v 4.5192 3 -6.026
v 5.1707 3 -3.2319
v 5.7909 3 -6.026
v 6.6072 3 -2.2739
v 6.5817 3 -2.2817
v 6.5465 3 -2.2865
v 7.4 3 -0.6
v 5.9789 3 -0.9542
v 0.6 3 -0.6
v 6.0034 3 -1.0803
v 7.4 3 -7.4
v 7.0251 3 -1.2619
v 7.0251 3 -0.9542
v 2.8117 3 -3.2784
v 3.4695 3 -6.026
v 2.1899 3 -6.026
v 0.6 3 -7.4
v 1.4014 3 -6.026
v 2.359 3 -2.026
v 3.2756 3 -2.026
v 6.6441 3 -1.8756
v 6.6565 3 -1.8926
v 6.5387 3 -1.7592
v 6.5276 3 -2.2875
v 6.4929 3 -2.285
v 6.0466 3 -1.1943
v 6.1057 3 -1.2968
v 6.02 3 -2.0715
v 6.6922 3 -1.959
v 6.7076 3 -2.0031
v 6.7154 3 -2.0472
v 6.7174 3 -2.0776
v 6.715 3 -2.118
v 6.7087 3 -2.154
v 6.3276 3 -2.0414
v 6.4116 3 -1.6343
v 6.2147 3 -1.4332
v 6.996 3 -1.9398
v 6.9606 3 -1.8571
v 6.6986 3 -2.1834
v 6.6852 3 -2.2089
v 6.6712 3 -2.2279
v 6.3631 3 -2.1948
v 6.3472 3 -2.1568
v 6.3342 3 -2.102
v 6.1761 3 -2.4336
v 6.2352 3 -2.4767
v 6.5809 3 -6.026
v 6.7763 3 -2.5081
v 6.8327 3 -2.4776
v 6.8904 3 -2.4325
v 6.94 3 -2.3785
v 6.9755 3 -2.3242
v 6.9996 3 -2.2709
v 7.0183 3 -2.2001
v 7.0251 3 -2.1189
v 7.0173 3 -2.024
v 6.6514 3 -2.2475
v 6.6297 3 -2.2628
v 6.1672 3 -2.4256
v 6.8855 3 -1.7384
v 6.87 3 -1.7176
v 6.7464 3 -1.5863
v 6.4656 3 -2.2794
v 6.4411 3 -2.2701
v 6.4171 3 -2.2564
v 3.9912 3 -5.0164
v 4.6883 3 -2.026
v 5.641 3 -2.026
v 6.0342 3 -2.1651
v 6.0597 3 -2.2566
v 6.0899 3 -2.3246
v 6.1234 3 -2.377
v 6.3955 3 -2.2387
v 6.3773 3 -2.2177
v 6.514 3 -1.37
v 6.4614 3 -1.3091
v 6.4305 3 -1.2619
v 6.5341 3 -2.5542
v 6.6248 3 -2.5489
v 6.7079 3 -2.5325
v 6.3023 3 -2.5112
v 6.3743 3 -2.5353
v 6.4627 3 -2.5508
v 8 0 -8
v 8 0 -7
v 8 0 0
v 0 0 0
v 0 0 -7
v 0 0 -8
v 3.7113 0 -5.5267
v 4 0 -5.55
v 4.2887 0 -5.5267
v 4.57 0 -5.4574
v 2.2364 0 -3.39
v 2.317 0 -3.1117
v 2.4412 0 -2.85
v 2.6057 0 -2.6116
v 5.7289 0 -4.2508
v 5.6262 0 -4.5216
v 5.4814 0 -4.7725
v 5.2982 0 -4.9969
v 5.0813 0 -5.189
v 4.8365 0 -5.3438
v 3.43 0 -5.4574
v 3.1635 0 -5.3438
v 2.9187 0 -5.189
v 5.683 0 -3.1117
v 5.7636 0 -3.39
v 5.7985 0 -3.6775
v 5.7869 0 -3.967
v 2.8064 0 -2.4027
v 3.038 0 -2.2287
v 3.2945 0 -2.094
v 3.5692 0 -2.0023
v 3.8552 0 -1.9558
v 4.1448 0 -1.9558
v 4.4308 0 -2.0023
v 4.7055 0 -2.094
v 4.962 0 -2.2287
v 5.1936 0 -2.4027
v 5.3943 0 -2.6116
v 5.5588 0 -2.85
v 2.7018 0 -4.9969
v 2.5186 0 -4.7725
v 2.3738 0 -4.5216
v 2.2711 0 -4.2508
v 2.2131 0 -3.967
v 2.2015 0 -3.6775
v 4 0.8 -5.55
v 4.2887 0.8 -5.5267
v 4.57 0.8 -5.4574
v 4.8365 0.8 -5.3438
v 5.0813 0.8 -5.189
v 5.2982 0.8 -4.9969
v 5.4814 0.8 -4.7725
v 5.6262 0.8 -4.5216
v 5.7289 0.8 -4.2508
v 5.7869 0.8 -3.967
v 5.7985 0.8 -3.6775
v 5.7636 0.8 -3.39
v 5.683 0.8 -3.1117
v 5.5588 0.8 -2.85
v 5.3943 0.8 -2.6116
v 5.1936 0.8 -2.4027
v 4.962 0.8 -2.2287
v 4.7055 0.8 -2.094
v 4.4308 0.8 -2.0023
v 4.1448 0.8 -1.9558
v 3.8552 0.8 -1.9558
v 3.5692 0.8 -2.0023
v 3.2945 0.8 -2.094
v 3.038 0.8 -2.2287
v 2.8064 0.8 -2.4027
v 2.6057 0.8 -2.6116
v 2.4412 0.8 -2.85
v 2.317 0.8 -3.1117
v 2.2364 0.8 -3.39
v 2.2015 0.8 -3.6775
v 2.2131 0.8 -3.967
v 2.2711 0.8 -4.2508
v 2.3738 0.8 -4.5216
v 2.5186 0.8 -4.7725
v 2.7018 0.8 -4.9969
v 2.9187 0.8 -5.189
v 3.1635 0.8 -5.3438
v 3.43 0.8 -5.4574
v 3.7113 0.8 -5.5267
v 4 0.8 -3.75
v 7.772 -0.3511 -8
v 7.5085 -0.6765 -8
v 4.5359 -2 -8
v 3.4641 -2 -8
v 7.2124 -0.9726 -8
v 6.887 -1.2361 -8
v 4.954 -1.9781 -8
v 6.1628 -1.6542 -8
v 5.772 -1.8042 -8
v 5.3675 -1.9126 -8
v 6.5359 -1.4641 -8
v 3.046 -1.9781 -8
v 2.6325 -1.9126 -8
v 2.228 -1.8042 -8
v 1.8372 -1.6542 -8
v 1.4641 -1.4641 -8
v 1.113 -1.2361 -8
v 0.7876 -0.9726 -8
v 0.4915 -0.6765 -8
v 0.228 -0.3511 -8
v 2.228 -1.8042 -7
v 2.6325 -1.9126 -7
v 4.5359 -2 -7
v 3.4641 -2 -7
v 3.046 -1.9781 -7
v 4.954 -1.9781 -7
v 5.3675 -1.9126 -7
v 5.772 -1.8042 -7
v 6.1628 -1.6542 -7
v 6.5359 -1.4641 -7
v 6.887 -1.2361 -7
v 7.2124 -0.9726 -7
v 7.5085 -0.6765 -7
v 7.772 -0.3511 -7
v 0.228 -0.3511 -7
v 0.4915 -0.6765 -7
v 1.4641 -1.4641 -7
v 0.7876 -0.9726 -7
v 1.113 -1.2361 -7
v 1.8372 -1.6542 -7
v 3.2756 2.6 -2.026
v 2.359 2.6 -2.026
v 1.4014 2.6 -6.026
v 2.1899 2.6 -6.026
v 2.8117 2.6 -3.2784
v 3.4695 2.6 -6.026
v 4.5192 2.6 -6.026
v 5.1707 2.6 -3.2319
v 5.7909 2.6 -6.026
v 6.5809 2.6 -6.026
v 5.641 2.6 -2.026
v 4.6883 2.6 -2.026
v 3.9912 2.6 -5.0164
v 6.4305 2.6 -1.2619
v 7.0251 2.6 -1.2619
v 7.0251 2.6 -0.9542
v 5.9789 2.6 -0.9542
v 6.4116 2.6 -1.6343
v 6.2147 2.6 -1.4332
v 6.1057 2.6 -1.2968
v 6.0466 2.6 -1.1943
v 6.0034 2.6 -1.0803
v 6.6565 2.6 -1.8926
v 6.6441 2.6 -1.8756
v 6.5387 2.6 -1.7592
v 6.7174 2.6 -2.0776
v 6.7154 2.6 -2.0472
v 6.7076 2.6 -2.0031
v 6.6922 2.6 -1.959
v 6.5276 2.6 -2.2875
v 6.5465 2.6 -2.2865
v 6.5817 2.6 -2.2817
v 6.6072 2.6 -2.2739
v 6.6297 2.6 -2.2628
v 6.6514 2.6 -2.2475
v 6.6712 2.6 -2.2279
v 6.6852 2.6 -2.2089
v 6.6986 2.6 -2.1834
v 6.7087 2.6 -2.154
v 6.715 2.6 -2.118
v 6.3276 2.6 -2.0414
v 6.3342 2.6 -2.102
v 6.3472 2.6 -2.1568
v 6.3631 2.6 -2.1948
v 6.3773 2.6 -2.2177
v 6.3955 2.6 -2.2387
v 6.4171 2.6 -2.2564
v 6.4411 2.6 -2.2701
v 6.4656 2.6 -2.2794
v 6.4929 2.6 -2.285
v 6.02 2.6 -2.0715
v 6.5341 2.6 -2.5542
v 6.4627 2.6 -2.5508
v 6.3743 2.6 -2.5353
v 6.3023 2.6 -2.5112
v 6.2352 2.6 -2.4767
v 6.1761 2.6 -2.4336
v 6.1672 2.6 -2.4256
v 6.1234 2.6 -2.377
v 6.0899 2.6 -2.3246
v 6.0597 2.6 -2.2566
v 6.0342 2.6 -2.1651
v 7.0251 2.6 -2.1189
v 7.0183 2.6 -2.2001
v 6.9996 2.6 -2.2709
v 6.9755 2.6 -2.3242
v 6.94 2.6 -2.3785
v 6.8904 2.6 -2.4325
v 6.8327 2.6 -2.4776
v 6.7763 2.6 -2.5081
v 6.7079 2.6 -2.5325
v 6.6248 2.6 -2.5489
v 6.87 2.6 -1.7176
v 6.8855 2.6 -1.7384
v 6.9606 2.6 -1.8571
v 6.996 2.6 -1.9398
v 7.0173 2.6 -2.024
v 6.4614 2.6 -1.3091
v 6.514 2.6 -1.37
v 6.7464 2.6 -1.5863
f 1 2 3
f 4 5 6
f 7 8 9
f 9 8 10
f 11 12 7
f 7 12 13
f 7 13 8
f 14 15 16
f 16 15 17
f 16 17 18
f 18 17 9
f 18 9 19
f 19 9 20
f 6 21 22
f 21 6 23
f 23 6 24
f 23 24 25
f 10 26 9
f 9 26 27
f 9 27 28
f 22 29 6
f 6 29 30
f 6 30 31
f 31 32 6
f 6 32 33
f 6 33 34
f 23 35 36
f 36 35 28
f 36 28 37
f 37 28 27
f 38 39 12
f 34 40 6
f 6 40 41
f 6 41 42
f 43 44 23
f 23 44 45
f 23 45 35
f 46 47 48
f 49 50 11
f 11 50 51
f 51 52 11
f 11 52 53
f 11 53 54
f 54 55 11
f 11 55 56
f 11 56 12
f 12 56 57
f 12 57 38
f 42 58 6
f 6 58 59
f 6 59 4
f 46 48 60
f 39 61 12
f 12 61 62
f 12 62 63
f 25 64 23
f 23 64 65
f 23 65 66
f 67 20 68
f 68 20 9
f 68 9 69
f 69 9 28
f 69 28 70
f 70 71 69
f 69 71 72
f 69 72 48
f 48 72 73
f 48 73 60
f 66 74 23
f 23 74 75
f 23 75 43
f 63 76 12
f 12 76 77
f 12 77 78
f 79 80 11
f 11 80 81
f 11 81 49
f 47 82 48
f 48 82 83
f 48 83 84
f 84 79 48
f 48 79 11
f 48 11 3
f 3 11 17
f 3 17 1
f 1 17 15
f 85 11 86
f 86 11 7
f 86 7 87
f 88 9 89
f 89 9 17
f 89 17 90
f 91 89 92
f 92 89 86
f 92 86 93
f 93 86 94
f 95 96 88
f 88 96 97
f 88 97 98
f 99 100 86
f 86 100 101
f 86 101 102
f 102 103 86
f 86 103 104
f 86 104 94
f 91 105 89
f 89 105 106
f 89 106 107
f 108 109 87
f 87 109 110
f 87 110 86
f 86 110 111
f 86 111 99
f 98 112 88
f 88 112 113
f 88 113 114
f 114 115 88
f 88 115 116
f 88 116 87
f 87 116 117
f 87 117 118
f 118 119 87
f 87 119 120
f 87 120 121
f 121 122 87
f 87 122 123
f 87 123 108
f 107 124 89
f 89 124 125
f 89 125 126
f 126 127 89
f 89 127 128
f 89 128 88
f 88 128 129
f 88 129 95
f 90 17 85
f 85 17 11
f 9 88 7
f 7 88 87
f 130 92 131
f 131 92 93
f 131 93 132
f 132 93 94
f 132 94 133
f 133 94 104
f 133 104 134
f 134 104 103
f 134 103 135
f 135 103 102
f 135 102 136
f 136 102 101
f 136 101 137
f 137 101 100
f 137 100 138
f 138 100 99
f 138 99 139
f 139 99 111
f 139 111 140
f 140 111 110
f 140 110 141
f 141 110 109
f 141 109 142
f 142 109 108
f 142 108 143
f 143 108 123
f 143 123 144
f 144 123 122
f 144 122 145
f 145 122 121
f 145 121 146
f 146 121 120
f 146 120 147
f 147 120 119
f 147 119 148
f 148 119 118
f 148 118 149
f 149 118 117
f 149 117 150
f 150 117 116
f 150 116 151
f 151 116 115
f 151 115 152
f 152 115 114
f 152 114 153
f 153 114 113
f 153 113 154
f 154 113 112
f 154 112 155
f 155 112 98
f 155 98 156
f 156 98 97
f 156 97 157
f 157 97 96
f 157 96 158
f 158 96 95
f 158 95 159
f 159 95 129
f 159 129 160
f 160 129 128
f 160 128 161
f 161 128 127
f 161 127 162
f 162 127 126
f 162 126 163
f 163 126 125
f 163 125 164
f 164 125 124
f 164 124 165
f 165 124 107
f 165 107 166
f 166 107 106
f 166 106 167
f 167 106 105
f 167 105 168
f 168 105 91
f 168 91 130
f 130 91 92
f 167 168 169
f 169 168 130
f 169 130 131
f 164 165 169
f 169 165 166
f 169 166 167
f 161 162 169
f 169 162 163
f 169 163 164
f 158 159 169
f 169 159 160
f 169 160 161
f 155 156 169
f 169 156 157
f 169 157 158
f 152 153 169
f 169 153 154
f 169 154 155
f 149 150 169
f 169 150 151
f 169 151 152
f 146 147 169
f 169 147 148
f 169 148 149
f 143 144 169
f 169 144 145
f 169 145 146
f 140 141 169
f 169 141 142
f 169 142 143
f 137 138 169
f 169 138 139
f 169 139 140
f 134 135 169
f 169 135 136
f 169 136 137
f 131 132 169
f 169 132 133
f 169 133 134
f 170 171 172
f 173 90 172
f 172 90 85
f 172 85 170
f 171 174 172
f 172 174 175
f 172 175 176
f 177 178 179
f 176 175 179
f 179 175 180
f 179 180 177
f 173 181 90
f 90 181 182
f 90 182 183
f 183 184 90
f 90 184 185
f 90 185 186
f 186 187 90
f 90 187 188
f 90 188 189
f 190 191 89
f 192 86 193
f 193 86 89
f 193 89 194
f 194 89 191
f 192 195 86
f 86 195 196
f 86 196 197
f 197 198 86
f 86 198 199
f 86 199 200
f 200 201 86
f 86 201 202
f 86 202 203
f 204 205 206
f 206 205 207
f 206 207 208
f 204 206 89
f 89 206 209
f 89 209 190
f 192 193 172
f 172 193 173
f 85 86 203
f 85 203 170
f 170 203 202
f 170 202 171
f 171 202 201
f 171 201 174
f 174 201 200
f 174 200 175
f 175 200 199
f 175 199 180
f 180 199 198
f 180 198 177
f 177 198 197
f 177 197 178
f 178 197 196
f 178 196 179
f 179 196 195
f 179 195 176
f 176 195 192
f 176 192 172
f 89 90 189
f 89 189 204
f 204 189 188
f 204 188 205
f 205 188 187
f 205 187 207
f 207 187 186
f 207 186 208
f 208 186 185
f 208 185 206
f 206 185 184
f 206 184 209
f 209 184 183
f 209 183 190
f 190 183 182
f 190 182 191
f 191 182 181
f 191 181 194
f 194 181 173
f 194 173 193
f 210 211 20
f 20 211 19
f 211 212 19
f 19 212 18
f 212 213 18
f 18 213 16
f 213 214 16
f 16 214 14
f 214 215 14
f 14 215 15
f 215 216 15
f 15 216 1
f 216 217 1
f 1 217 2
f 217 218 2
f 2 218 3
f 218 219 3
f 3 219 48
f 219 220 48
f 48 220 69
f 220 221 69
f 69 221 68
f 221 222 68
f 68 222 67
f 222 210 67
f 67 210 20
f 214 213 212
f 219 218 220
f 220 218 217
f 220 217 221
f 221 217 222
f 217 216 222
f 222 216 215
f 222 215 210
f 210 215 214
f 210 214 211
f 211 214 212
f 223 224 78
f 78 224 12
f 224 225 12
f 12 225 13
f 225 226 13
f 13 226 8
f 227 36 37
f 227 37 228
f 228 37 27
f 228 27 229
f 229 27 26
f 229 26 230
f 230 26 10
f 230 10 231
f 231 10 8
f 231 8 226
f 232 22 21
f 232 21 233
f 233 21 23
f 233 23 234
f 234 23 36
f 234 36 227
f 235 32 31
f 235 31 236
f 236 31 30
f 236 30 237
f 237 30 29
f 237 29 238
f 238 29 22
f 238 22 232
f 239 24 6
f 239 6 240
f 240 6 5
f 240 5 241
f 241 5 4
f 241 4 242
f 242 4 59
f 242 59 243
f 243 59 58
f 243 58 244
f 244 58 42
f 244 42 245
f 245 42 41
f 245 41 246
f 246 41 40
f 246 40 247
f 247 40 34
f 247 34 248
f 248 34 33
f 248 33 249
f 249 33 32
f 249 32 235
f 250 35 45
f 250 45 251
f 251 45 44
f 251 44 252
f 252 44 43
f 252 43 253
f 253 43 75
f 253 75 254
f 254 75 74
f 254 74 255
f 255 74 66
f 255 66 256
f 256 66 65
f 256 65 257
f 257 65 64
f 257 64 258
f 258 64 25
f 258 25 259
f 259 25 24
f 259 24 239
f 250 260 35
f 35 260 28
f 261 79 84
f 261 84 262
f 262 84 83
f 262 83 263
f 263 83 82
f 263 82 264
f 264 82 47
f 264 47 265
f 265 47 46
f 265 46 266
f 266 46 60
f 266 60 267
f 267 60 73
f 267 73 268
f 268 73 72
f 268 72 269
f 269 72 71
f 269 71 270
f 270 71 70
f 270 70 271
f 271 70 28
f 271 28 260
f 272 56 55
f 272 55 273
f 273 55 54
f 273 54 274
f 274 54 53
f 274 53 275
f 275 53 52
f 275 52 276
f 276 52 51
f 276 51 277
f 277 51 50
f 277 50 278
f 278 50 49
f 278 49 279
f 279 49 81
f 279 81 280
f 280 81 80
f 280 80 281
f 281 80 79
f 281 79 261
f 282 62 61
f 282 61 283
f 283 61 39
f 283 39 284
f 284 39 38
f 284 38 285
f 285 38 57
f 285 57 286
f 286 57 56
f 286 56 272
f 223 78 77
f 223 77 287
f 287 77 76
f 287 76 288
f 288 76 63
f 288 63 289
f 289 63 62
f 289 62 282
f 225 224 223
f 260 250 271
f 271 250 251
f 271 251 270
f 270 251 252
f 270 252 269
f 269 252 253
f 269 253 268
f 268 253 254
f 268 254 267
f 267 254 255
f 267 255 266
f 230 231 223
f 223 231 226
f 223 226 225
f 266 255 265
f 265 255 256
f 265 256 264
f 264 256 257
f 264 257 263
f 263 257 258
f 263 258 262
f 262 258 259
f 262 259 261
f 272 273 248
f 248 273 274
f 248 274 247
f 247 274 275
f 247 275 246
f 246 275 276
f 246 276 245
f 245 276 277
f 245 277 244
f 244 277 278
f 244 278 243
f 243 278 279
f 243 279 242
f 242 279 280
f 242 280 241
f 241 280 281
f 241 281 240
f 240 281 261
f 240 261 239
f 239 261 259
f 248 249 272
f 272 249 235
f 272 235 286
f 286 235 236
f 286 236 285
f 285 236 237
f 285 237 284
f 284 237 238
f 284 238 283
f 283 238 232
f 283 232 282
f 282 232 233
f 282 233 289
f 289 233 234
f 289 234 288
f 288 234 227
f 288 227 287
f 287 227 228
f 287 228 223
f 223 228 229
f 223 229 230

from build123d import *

# Parameters (mm, degrees)
SKETCH1_W               = 8
SKETCH1_H               = 8
BOSS_EXTRUDE1_DEPTH     = 3
CUT_EXTRUDE1_DEPTH      = 12.704699911
CUT_EXTRUDE1_DEPTH_BACK = 12.704699911
CUT_EXTRUDE2_DEPTH      = 11
SKETCH4_R               = 1.8
CUT_EXTRUDE3_DEPTH      = 0.8
SKETCH5_W               = 8
SKETCH5_H               = 1
BOSS_EXTRUDE2_DEPTH     = 2
FILLET1_R               = 4
CUT_EXTRUDE4_DEPTH      = 0.4
CUT_EXTRUDE5_DEPTH      = 0.4


with BuildPart() as part:
    # Sketch1 → Boss-Extrude1 (new body)
    with BuildSketch(Plane(origin=(0, 0, 0), x_dir=(1, 0, 0), z_dir=(0, 1, 0))):
        with Locations((4, 4)):
            Rectangle(SKETCH1_W, SKETCH1_H)
    extrude(amount=BOSS_EXTRUDE1_DEPTH)

    # Sketch2 → Cut-Extrude1 (cut, two sides: drawn at the far end of the back side and taken through both)
    with BuildSketch(Plane.XY.offset(-CUT_EXTRUDE1_DEPTH_BACK)):
        Polygon((0, 0), (0.6, 3), (0, 3), align=None)
        Polygon((8, 0), (7.4, 3), (8, 3), align=None)
    extrude(amount=CUT_EXTRUDE1_DEPTH + CUT_EXTRUDE1_DEPTH_BACK, mode=Mode.SUBTRACT)

    # Sketch3 → Cut-Extrude2 (cut)
    with BuildSketch(Plane(origin=(0, 0, 0), x_dir=(0, 0, -1), z_dir=(1, 0, 0))):
        Polygon((0, 0), (0.6, 3), (0, 3), align=None)
        Polygon((8, 3), (7.4, 3), (8, 0), align=None)
    extrude(amount=CUT_EXTRUDE2_DEPTH, mode=Mode.SUBTRACT)

    # Sketch4 → Cut-Extrude3 (cut)
    with BuildSketch(Plane.XZ):
        with Locations(Location((4, -3.75, 0), (0, 0, 270))):
            Circle(SKETCH4_R)
    extrude(amount=-CUT_EXTRUDE3_DEPTH, mode=Mode.SUBTRACT)

    # Sketch5 → Boss-Extrude2 (add)
    with BuildSketch(Plane.XZ):
        with Locations((4, -7.5)):
            Rectangle(SKETCH5_W, SKETCH5_H)
    extrude(amount=BOSS_EXTRUDE2_DEPTH)

    # Fillet1
    # the kernel refuses this fillet: 4 mm, written as the material it takes off along each edge
    with BuildSketch(Plane(origin=(8, -2, -16.660254038), x_dir=(0, 1, 0), z_dir=(0, 0, 1)), Plane(origin=(0, -2, 1.660254038), x_dir=(0, 1, 0), z_dir=(0, 0, -1))) as fillet1_piece_1:
        with BuildLine():
            CenterArc((4, 3.464101615), FILLET1_R, 180, 60)
            Line((0, 3.464101615), (-0.08, 3.464101615))
            Line((-0.08, 3.464101615), (-0.08, 0))
            Line((-0.08, 0), (0, -0.08))
            ThreePointArc((0, -0.08), (1, -0.08), (1.96, -0.069282032))
            Line((1.96, -0.069282032), (2, 0))
        make_face()
    extrude(amount=18.320508076, mode=Mode.SUBTRACT)

    # Sketch6 → Cut-Extrude4 (cut)
    with BuildSketch(Plane(origin=(0, 3, 0), x_dir=(1, 0, 0), z_dir=(0, 1, 0))):
        Polygon((2.358967796, 2.025988971), (1.401435745, 6.025988971), (2.189897284, 6.025988971), (2.811692155, 3.278392817), (3.469544719, 6.025988971), (4.519224207, 6.025988971), (5.170666514, 3.231918458), (5.790858822, 6.025988971), (6.580922925, 6.025988971), (5.641019078, 2.025988971), (4.688294719, 2.025988971), (3.991179335, 5.016373586), (3.275634463, 2.025988971), align=None)
    extrude(amount=-CUT_EXTRUDE4_DEPTH, mode=Mode.SUBTRACT)

    # Sketch7 → Cut-Extrude5 (cut)
    with BuildSketch(Plane(origin=(0, 3, 0), x_dir=(1, 0, 0), z_dir=(0, 1, 0))):
        with BuildLine():
            Line((7.025079926, 1.261869909), (7.025079926, 0.954177602))
            Line((7.025079926, 0.954177602), (5.978926079, 0.954177602))
            add(Edge.make_bspline(
                [(5.978926079, 0.954177602), (5.982468114, 0.980474374), (5.989550197, 1.033053173), (6.011445466, 1.109857564), (6.040668149, 1.184805528), (6.072383822, 1.245794978), (6.103928572, 1.294889387), (6.132549124, 1.335117725), (6.166692393, 1.37791895), (6.205862922, 1.423638586), (6.249844239, 1.472419552), (6.298964472, 1.524080492), (6.353457933, 1.578374089), (6.391795053, 1.615242112), (6.411618387, 1.634305807)],
                knots=[0, 0, 0, 0, 1.156289446, 2.311930546, 3.473459201, 4.661751613, 5.303057008, 6.018253237, 6.81459331, 7.690699809, 8.644447906, 9.679642995, 10.800191253, 12, 12, 12, 12], degree=3))
            add(Edge.make_bspline(
                [(6.411618387, 1.634305807), (6.427437635, 1.649575712), (6.457552822, 1.678645113), (6.500436909, 1.720271317), (6.538136439, 1.758537631), (6.571439659, 1.79245241), (6.599577217, 1.822879209), (6.622919237, 1.849340182), (6.641761343, 1.871943086), (6.651966244, 1.886282382), (6.656490182, 1.89263914)],
                knots=[0, 0, 0, 0, 1.480720495, 2.818855715, 4.024636094, 5.098235712, 6.019786162, 6.815086302, 7.474715479, 8, 8, 8, 8], degree=3))
            add(Edge.make_bspline(
                [(6.656490182, 1.89263914), (6.665754103, 1.908027503), (6.683623134, 1.937709873), (6.703218009, 1.984385935), (6.714979583, 2.031052356), (6.71659359, 2.062234592), (6.717387618, 2.077575038)],
                knots=[0, 0, 0, 0, 1.0911822, 2.104764037, 3.067617678, 4, 4, 4, 4], degree=3))
            add(Edge.make_bspline(
                [(6.717387618, 2.077575038), (6.716811351, 2.093538834), (6.7157211, 2.123741092), (6.706579153, 2.166362064), (6.690367393, 2.203000826), (6.668046783, 2.233769843), (6.639822327, 2.257877251), (6.606827118, 2.275690284), (6.568578157, 2.285538571), (6.541694532, 2.286833928), (6.527644028, 2.287510935)],
                knots=[0, 0, 0, 0, 1.193122327, 2.257294386, 3.237245624, 4.168877528, 5.075331632, 5.990371598, 6.949684428, 8, 8, 8, 8], degree=3))
            add(Edge.make_bspline(
                [(6.527644028, 2.287510935), (6.513688449, 2.286878661), (6.486729282, 2.285657243), (6.448414457, 2.274987105), (6.414896057, 2.256515974), (6.391009062, 2.235466338), (6.374872264, 2.214997095), (6.363877213, 2.197159499), (6.354400337, 2.17689052), (6.346003035, 2.154418352), (6.339370115, 2.129485554), (6.334028373, 2.102282013), (6.329723702, 2.072661336), (6.328354741, 2.052055079), (6.327644028, 2.041357089)],
                knots=[0, 0, 0, 0, 1.402788338, 2.709884207, 3.961032948, 5.225417836, 5.883680772, 6.578928686, 7.329201998, 8.132101139, 8.990263233, 9.922304639, 10.921339128, 12, 12, 12, 12], degree=3))
            Line((6.327644028, 2.041357089), (6.01995172, 2.071485294))
            add(Edge.make_bspline(
                [(6.01995172, 2.071485294), (6.022425519, 2.092258403), (6.027221819, 2.132534142), (6.039191066, 2.190383991), (6.054349674, 2.243753088), (6.073420305, 2.292542389), (6.095614746, 2.337062147), (6.122065099, 2.376644317), (6.15184716, 2.411727355), (6.184986668, 2.44229259), (6.221272944, 2.468437258), (6.259348879, 2.491775386), (6.299958585, 2.510920071), (6.342654946, 2.526698167), (6.387418668, 2.539307895), (6.434456788, 2.547645276), (6.483479006, 2.553509822), (6.516941776, 2.553951654), (6.534054285, 2.554177602)],
                knots=[0, 0, 0, 0, 1.270971563, 2.464210789, 3.586263665, 4.638946707, 5.643716971, 6.603612468, 7.52484387, 8.434700188, 9.336036235, 10.239171475, 11.145359471, 12.059630629, 13.003312604, 13.96741569, 14.960557767, 16, 16, 16, 16], degree=3))
            add(Edge.make_bspline(
                [(6.534054285, 2.554177602), (6.552657792, 2.553820052), (6.58889046, 2.553123679), (6.641783721, 2.547373025), (6.69147314, 2.537345926), (6.738393137, 2.524063615), (6.782061867, 2.506330758), (6.82284322, 2.484892472), (6.860095371, 2.458935129), (6.894373612, 2.429874295), (6.925015616, 2.397916799), (6.95185524, 2.363828728), (6.974341388, 2.327633829), (6.993210719, 2.289773279), (7.007221071, 2.249637846), (7.017429622, 2.207782494), (7.024198302, 2.164011958), (7.024782801, 2.134117674), (7.025079926, 2.118921192)],
                knots=[0, 0, 0, 0, 1.210756838, 2.35810096, 3.457354827, 4.507168606, 5.527358126, 6.519769748, 7.499700793, 8.476517721, 9.440526811, 10.376769937, 11.295256217, 12.209626307, 13.124630862, 14.055668209, 15.011616881, 16, 16, 16, 16], degree=3))
            add(Edge.make_bspline(
                [(7.025079926, 2.118921192), (7.024688468, 2.101480457), (7.023911876, 2.066880717), (7.016476584, 2.015731964), (7.005116907, 1.965762694), (6.988328197, 1.916850789), (6.967047205, 1.867822963), (6.939615495, 1.818569171), (6.907765206, 1.767604004), (6.882827684, 1.7346528), (6.86995172, 1.71763914)],
                knots=[0, 0, 0, 0, 0.953409949, 1.89141903, 2.821310783, 3.752688675, 4.715703262, 5.740811754, 6.833515735, 8, 8, 8, 8], degree=3))
            add(Edge.make_bspline(
                [(6.86995172, 1.71763914), (6.865085171, 1.711509707), (6.854662151, 1.698381883), (6.836929855, 1.678252394), (6.816379649, 1.656264646), (6.793301796, 1.632007081), (6.766933989, 1.606338723), (6.738224942, 1.578186143), (6.705911376, 1.548989439), (6.672442351, 1.518020294), (6.638827847, 1.487878461), (6.607931272, 1.459250402), (6.579866901, 1.433920718), (6.555941744, 1.410491095), (6.534748531, 1.390560588), (6.517051134, 1.373107183), (6.502518393, 1.358553413), (6.482493212, 1.335867777), (6.457013442, 1.305185447), (6.439087381, 1.275867612), (6.430528644, 1.261869909)],
                knots=[0, 0, 0, 0, 0.665555651, 1.425465941, 2.280616993, 3.225313414, 4.272635571, 5.410053715, 6.644756443, 7.976022804, 9.288331007, 10.484517221, 11.558462543, 12.503158964, 13.33222979, 14.032602617, 14.617328242, 15.080653724, 16.606167857, 18, 18, 18, 18], degree=3))
            Line((6.430528644, 1.261869909), (7.025079926, 1.261869909))
        make_face()
    extrude(amount=-CUT_EXTRUDE5_DEPTH, mode=Mode.SUBTRACT)


solid = part.part
